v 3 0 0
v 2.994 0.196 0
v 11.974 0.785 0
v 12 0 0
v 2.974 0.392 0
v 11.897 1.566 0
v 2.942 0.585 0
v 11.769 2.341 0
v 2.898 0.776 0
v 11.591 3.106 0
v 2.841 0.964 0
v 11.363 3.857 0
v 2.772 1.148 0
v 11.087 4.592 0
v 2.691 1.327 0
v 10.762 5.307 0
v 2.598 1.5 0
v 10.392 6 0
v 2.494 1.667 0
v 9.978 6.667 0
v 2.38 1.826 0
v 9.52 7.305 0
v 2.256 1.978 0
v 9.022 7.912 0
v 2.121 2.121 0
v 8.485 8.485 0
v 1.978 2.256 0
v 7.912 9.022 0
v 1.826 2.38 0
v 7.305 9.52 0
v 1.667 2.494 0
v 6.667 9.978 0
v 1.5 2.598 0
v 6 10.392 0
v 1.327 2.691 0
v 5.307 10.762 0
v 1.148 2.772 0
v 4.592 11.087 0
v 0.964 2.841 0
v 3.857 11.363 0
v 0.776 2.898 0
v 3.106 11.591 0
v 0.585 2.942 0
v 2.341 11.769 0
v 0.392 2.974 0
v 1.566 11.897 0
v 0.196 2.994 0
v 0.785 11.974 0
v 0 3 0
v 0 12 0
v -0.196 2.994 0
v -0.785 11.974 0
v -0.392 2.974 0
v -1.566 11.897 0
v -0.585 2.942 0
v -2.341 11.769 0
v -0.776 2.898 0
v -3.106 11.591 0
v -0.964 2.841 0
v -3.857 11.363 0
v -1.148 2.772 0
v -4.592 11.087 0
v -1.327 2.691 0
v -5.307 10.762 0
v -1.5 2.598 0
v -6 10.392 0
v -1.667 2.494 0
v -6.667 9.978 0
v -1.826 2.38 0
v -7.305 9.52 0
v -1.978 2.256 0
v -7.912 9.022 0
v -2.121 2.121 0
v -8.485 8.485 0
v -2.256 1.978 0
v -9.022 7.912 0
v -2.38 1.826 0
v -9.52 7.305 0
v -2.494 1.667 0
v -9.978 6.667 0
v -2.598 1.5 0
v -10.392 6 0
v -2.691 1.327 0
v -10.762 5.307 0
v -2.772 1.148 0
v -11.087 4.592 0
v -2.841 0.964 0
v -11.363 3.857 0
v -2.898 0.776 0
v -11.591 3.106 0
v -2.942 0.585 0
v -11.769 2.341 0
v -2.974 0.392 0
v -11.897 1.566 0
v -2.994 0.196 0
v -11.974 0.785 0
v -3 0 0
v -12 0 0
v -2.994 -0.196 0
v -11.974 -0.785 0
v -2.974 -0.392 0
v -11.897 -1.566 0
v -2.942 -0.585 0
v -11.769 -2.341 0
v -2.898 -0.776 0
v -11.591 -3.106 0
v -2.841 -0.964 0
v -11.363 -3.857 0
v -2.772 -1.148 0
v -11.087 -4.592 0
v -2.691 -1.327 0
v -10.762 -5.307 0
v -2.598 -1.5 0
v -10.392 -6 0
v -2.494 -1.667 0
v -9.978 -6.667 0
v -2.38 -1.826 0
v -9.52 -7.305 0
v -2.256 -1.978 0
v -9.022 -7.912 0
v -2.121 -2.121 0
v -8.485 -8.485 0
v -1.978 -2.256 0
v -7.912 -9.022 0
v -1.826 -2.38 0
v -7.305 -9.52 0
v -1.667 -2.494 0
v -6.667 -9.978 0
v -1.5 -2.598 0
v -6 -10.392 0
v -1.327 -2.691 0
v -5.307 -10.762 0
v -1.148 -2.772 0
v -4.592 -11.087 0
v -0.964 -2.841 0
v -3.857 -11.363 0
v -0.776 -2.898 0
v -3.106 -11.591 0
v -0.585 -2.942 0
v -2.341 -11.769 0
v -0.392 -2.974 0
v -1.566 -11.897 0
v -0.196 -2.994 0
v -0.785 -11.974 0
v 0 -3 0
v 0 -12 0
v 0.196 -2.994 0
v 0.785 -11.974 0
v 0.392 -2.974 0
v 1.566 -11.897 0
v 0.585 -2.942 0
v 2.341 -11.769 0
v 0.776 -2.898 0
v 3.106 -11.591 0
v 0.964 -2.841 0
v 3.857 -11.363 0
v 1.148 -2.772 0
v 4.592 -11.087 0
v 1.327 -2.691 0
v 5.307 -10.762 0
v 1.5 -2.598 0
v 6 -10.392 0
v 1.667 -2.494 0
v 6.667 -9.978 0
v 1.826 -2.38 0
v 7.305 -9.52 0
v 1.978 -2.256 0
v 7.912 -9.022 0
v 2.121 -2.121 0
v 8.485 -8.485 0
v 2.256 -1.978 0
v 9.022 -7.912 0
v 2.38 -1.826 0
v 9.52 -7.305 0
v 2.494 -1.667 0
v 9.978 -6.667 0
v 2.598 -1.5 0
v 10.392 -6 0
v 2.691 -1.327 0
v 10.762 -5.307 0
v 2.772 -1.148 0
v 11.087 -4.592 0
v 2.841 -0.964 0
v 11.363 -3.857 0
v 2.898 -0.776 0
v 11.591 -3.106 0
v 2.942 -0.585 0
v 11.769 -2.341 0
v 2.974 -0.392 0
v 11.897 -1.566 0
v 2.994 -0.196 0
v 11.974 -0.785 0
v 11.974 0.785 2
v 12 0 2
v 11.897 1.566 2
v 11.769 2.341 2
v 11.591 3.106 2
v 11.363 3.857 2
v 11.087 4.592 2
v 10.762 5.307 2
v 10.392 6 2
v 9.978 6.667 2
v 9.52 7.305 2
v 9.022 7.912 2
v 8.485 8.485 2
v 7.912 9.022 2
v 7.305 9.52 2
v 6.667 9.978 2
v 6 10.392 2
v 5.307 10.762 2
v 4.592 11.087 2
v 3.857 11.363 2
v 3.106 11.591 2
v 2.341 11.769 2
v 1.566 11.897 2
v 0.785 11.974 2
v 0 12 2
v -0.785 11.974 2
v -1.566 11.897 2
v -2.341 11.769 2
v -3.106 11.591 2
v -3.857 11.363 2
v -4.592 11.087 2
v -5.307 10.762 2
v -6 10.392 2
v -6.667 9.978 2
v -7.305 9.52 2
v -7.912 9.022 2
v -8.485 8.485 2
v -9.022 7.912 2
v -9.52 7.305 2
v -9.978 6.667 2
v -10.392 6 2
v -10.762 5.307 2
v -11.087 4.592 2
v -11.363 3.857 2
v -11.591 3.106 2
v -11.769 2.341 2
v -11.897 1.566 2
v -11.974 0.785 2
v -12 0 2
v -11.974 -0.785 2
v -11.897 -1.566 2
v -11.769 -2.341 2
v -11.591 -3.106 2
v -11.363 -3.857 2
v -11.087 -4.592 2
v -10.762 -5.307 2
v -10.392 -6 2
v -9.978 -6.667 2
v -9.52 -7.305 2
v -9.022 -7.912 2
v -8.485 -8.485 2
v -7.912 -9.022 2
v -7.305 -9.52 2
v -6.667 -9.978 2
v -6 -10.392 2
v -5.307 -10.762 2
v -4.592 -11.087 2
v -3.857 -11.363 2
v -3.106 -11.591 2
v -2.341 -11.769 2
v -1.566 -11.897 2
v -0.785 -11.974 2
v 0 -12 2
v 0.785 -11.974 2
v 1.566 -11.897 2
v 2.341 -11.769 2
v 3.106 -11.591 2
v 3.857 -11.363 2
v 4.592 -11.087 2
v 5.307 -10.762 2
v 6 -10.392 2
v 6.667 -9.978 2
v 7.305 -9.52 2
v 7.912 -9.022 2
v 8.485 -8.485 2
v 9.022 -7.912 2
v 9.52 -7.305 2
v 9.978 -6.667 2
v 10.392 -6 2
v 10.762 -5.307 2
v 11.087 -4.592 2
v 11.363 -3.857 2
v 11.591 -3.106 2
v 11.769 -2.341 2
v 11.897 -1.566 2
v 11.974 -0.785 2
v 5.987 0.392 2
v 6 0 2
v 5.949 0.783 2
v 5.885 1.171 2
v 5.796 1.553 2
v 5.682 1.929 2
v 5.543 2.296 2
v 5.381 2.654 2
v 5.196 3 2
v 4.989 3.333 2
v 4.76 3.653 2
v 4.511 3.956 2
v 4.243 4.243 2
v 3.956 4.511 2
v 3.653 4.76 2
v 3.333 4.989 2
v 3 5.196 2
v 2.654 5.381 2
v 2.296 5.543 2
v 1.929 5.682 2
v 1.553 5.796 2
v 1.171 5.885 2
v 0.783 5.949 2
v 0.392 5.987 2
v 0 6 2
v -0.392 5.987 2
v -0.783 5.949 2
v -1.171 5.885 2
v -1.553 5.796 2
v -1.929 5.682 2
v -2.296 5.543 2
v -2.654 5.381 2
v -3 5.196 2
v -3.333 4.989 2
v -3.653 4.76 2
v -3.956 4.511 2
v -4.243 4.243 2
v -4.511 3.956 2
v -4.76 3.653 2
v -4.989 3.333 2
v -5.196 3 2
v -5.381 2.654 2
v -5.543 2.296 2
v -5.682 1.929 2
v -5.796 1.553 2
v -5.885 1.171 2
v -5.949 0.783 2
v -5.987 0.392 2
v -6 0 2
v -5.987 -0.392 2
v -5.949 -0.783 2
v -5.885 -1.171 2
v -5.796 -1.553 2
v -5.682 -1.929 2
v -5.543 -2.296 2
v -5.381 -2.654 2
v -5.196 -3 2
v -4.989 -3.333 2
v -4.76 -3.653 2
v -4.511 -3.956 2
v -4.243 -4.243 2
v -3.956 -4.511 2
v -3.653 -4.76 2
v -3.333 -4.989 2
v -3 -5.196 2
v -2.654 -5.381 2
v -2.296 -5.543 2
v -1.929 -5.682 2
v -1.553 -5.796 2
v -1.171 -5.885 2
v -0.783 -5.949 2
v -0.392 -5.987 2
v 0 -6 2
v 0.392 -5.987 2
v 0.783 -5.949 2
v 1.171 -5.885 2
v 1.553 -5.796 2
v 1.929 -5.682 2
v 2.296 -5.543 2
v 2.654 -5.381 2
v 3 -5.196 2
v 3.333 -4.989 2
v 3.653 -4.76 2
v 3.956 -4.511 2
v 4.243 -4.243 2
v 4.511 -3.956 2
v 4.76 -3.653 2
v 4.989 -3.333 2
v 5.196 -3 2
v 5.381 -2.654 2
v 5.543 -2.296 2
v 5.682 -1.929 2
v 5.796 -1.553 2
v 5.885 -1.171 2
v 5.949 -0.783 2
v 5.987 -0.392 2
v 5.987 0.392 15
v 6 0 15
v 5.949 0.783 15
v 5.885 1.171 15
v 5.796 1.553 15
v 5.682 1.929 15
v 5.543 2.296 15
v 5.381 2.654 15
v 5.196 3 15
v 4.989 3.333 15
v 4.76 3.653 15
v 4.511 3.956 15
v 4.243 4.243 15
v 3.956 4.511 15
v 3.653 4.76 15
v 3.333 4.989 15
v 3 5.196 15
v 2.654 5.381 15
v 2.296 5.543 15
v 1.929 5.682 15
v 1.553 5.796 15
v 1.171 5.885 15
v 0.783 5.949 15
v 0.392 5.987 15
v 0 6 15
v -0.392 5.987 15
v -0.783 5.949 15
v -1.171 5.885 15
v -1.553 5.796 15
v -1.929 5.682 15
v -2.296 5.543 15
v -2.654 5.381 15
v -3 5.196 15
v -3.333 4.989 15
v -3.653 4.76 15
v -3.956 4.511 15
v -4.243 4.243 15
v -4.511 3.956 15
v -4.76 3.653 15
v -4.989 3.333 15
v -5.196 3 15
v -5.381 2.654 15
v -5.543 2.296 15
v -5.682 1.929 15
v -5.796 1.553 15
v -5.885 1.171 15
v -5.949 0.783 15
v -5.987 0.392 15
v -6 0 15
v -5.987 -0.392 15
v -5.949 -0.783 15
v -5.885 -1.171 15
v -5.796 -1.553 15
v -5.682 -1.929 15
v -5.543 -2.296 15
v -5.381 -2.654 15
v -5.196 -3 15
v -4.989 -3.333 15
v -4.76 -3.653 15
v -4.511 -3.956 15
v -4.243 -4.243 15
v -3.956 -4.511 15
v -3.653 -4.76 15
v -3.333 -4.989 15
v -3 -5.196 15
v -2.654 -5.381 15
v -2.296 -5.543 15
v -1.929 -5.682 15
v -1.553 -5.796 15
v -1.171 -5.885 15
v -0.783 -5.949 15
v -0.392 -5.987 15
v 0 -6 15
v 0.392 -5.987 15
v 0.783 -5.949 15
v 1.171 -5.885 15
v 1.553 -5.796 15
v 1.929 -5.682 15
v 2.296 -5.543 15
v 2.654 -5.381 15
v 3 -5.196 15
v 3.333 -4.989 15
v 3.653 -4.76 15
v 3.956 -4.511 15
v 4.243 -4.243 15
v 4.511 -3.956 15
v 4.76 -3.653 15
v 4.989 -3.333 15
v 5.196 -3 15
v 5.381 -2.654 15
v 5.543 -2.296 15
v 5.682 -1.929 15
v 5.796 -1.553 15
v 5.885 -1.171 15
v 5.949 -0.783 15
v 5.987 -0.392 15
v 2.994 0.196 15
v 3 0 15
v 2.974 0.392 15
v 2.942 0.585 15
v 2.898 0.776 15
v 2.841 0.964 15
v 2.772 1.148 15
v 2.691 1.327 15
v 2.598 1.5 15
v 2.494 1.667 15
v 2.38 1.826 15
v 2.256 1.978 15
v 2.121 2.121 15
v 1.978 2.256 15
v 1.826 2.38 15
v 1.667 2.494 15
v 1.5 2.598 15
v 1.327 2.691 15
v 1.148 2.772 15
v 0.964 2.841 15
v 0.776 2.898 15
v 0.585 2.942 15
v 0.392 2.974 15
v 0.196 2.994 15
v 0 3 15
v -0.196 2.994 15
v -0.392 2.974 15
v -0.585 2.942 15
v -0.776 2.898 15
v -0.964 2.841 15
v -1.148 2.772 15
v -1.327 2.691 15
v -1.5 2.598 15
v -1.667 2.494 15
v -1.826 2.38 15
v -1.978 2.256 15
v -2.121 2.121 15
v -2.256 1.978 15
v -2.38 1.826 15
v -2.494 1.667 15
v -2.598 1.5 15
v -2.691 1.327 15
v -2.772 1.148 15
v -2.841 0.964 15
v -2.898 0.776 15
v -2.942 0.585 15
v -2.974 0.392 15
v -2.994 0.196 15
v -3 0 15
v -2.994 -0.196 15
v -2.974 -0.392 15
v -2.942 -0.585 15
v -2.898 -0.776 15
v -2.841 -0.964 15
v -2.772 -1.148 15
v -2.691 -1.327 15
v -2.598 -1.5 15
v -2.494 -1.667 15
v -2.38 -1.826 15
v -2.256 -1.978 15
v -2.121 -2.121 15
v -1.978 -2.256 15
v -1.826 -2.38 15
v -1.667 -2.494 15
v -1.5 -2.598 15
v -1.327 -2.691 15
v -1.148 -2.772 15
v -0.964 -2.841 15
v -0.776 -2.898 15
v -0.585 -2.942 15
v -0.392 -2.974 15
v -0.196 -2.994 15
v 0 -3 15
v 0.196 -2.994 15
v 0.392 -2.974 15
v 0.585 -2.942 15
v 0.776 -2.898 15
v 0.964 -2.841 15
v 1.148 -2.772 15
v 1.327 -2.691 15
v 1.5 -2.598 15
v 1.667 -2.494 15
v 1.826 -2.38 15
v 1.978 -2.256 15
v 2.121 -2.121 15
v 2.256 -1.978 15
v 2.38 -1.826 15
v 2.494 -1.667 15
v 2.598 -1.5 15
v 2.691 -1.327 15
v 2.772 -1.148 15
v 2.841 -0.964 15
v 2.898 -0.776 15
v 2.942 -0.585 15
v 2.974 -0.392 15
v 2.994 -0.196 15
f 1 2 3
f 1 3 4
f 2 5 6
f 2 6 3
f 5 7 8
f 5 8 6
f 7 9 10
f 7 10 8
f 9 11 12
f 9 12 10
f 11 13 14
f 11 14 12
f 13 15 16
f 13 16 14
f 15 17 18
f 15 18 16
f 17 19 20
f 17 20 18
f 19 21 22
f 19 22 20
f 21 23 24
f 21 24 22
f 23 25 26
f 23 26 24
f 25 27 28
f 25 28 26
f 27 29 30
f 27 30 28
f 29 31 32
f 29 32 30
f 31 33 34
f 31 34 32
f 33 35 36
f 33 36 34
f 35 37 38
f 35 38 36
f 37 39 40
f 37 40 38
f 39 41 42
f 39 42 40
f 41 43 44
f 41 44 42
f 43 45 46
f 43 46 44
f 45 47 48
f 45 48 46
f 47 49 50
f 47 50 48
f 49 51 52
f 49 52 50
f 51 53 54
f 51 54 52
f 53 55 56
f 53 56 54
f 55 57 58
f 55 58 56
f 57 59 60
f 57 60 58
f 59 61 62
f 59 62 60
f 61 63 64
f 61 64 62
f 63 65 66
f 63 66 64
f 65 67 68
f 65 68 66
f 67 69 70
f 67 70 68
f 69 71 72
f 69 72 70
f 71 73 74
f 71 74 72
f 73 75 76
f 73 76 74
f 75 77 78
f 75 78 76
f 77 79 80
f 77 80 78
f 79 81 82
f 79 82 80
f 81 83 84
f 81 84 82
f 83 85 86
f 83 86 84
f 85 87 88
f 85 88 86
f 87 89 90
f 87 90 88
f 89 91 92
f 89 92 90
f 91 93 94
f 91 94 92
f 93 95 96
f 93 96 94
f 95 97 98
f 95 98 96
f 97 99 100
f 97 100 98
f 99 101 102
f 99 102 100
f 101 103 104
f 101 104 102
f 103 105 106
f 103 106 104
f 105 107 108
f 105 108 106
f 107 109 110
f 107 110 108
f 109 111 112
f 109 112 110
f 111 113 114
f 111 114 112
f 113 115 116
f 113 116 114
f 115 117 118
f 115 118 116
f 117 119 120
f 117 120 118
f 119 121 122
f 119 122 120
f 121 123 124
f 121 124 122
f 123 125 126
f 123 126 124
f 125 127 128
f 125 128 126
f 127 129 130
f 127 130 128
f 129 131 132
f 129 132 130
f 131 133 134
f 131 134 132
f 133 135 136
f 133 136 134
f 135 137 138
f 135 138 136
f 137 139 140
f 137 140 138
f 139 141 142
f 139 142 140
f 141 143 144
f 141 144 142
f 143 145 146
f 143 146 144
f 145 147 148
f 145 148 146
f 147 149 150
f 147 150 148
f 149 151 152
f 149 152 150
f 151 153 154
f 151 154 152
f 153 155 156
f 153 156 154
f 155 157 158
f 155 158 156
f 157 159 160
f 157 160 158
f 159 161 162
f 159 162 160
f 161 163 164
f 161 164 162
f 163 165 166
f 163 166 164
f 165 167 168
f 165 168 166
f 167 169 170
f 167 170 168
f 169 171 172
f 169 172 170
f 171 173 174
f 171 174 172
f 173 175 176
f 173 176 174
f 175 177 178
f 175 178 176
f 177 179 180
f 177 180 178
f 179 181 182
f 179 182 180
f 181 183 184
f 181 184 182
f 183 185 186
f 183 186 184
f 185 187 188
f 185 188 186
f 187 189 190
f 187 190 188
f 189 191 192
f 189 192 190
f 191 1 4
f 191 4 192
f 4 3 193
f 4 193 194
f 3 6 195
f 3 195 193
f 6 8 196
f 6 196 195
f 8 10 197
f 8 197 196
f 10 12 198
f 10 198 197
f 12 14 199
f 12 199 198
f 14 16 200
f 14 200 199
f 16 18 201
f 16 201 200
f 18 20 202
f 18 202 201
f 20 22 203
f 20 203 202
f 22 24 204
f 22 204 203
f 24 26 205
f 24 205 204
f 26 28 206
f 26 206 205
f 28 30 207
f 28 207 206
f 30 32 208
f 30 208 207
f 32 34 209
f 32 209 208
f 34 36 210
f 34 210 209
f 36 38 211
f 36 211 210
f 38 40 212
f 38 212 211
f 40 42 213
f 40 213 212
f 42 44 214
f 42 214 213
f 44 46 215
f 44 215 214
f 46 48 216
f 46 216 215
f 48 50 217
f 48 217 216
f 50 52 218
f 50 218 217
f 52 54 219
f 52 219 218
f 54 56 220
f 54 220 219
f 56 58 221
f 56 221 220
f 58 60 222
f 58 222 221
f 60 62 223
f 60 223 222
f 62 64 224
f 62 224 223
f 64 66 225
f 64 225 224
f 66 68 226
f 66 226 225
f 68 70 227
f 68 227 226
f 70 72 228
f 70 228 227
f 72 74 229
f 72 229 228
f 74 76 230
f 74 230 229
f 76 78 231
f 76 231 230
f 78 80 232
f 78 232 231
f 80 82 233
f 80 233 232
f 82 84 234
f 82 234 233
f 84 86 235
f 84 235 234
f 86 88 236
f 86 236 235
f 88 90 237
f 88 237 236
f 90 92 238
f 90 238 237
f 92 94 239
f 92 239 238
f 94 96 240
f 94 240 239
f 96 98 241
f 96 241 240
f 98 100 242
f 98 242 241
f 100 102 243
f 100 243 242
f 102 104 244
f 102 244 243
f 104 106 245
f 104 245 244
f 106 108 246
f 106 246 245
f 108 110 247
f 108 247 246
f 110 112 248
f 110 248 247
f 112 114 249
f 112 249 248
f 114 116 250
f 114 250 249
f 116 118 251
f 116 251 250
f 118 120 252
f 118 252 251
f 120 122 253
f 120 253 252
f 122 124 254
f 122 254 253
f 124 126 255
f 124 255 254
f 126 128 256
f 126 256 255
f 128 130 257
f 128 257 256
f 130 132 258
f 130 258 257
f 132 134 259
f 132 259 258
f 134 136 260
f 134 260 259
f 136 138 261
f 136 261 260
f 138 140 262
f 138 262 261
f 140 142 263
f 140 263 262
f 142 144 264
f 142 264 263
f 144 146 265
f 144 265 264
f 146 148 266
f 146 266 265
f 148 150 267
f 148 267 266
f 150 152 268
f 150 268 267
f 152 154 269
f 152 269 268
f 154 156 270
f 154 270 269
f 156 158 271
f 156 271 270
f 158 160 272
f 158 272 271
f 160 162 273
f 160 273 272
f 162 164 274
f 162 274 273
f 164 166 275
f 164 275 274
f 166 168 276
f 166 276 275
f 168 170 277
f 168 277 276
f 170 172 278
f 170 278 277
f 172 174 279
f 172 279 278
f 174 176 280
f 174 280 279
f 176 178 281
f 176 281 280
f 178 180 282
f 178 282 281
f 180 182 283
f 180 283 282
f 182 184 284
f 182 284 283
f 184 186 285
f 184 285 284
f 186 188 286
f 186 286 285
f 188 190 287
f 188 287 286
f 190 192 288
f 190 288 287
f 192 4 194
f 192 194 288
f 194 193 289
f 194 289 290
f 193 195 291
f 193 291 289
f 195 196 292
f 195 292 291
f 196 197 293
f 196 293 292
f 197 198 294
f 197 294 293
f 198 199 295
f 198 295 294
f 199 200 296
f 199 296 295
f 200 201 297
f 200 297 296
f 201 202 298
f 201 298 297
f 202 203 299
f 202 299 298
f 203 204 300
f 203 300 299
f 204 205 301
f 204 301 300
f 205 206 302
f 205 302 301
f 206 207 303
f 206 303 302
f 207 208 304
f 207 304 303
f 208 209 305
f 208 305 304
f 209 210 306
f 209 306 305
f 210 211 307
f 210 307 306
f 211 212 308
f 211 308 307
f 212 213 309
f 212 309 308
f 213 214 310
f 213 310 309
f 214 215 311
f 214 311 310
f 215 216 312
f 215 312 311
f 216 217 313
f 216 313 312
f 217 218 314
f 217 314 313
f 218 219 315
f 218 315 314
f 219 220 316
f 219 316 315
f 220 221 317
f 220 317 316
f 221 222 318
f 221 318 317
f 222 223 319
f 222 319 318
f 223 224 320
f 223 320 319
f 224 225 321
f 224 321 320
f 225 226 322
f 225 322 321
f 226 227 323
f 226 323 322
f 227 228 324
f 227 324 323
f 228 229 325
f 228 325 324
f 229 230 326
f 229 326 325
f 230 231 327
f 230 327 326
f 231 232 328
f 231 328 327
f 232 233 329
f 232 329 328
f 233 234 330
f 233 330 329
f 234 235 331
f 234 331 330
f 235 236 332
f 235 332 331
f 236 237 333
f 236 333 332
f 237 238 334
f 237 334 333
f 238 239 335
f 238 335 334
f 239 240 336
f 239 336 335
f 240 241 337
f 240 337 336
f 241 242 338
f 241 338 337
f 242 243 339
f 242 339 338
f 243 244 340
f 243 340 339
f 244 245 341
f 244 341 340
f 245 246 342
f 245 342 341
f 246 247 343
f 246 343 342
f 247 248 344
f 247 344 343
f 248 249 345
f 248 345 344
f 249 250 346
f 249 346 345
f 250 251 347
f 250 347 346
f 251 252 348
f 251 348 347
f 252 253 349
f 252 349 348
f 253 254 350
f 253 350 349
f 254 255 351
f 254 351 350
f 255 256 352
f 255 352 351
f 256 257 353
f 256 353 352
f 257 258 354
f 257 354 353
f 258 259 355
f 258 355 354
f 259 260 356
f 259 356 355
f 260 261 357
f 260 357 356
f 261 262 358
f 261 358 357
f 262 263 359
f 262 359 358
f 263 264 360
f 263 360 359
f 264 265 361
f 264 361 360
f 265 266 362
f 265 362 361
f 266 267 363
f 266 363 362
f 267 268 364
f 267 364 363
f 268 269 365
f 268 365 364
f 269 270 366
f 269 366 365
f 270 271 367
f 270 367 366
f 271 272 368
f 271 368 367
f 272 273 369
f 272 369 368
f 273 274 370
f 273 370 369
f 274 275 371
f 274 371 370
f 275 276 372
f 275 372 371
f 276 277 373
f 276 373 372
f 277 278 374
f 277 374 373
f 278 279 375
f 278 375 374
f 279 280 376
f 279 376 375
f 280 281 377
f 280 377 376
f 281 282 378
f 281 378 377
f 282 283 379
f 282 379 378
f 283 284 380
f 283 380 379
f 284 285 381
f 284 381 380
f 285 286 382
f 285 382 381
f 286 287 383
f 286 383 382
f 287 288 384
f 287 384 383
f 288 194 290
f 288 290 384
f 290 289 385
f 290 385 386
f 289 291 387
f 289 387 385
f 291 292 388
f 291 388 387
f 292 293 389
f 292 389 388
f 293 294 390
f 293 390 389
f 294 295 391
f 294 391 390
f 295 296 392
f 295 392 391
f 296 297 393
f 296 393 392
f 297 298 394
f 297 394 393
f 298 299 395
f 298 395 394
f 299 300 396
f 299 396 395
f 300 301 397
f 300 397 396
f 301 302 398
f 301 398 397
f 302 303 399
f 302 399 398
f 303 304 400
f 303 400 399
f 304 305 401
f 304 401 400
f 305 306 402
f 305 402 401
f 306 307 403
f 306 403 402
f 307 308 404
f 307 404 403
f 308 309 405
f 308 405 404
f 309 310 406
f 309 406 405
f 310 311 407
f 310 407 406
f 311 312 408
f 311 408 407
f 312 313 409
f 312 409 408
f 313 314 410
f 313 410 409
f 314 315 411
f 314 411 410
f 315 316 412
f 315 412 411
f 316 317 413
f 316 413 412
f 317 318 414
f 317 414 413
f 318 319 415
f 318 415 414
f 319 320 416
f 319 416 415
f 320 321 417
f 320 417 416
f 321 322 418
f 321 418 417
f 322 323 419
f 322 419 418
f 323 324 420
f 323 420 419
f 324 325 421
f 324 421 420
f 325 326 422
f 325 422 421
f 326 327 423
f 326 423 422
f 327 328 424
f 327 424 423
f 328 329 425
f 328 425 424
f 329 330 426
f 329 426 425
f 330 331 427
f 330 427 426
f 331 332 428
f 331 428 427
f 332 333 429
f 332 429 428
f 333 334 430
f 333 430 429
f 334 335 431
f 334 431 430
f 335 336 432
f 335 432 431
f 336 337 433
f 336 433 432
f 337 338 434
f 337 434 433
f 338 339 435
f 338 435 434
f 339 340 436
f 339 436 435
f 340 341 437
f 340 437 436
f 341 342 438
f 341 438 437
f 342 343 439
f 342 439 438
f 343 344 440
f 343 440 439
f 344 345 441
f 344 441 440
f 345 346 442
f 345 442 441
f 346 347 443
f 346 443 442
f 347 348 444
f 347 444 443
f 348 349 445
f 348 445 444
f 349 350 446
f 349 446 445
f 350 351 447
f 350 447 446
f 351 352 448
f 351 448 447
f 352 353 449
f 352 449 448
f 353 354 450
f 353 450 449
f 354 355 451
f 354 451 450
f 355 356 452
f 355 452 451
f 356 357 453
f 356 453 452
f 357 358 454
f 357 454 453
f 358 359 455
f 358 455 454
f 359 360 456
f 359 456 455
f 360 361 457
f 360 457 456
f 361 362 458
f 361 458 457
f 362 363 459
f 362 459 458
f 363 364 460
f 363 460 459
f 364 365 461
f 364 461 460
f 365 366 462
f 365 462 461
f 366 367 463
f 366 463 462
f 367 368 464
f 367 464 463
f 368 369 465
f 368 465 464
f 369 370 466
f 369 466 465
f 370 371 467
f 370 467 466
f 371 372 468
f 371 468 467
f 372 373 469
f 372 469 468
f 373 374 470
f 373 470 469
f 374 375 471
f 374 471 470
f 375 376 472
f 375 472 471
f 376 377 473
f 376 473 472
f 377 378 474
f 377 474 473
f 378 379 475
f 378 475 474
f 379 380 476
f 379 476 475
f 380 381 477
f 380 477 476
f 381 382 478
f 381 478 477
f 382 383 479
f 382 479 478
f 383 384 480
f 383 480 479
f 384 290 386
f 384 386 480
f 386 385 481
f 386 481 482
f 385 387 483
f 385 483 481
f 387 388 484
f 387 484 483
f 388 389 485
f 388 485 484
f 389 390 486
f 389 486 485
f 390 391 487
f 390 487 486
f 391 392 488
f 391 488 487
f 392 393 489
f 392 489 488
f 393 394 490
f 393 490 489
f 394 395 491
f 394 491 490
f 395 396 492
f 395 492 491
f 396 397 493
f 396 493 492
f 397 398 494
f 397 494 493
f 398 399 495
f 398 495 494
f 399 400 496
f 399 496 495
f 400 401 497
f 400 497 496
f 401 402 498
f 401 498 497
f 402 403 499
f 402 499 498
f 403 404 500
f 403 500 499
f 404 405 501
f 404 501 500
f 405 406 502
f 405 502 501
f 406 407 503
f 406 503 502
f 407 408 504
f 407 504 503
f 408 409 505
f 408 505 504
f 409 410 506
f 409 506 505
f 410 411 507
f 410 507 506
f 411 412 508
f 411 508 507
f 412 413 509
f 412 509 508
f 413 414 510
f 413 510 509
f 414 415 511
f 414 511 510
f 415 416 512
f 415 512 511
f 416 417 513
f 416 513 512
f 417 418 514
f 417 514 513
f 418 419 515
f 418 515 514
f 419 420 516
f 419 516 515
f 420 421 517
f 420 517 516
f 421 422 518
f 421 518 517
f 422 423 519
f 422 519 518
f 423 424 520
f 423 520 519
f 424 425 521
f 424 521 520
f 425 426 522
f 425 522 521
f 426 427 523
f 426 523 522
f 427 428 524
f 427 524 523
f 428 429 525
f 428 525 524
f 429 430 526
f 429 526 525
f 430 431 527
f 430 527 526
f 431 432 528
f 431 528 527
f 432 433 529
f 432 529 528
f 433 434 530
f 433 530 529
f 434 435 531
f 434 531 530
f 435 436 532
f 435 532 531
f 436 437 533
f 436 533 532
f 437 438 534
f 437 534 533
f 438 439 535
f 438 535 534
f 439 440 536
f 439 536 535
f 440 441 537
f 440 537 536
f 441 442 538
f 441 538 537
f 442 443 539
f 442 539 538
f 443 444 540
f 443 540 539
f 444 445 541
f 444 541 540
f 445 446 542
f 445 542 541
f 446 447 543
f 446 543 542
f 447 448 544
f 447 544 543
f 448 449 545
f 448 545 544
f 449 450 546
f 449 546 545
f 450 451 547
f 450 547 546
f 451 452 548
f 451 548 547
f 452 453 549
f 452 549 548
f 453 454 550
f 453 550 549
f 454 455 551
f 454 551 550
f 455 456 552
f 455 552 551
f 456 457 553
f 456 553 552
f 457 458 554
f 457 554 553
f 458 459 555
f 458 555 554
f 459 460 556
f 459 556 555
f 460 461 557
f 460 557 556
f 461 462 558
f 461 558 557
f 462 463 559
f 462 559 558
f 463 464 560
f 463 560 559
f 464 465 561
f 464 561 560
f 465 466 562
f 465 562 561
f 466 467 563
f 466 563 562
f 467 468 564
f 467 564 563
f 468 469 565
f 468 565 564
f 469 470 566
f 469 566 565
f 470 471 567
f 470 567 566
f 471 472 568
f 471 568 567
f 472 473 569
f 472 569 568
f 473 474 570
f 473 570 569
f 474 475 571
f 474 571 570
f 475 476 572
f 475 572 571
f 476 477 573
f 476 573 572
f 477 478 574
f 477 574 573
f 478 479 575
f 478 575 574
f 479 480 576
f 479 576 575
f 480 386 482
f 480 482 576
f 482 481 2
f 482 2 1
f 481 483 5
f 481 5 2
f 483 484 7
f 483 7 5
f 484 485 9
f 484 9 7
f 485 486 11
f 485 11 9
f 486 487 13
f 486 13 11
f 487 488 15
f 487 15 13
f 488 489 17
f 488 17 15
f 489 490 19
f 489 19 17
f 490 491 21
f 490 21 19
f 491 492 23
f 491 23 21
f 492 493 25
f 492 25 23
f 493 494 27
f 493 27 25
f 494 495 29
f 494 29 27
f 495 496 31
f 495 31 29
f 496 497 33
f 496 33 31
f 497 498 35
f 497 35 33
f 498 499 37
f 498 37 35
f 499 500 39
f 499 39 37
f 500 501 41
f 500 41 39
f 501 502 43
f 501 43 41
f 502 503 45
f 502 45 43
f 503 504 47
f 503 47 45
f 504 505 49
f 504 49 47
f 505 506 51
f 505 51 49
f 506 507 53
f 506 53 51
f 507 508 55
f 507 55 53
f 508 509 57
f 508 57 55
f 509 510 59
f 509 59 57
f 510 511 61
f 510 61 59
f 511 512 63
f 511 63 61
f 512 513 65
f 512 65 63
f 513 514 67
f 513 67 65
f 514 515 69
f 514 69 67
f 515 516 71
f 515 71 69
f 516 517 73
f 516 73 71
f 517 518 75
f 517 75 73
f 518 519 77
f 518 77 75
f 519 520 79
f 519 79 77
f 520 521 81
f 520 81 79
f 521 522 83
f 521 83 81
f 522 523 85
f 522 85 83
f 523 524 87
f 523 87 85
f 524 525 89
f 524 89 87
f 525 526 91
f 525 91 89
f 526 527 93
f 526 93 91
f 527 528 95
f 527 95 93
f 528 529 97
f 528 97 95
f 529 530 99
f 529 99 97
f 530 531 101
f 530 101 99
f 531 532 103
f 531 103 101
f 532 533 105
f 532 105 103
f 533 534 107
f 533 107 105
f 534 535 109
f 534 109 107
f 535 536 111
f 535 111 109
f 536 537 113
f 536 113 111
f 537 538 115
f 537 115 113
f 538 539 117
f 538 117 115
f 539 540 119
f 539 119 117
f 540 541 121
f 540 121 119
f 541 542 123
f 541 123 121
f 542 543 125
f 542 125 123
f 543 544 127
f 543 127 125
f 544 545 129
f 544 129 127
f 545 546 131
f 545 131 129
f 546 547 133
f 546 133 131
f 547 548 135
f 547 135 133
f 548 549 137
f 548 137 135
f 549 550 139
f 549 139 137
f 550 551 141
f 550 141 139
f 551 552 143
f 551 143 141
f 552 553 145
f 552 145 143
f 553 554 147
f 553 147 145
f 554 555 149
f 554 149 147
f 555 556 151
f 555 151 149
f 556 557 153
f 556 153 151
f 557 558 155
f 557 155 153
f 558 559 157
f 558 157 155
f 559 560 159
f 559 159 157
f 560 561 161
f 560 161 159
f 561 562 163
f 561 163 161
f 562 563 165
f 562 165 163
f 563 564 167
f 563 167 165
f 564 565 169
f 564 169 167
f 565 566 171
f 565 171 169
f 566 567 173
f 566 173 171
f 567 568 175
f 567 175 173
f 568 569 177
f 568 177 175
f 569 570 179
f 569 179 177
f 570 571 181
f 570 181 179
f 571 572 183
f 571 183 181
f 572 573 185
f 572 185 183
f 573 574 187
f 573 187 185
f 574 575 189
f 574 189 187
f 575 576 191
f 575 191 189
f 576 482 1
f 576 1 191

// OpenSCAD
// Original MechIntel educational model. CC0-1.0. Units: mm.
// Not a standardized or load-rated component.
$fn=96;
// Section points: [radius, height], mm. Edit to change the profile.
section=[[3, 0], [12, 0], [12, 2], [6, 2], [6, 15], [3, 15]];
rotate_extrude($fn=96) polygon(points=section);
